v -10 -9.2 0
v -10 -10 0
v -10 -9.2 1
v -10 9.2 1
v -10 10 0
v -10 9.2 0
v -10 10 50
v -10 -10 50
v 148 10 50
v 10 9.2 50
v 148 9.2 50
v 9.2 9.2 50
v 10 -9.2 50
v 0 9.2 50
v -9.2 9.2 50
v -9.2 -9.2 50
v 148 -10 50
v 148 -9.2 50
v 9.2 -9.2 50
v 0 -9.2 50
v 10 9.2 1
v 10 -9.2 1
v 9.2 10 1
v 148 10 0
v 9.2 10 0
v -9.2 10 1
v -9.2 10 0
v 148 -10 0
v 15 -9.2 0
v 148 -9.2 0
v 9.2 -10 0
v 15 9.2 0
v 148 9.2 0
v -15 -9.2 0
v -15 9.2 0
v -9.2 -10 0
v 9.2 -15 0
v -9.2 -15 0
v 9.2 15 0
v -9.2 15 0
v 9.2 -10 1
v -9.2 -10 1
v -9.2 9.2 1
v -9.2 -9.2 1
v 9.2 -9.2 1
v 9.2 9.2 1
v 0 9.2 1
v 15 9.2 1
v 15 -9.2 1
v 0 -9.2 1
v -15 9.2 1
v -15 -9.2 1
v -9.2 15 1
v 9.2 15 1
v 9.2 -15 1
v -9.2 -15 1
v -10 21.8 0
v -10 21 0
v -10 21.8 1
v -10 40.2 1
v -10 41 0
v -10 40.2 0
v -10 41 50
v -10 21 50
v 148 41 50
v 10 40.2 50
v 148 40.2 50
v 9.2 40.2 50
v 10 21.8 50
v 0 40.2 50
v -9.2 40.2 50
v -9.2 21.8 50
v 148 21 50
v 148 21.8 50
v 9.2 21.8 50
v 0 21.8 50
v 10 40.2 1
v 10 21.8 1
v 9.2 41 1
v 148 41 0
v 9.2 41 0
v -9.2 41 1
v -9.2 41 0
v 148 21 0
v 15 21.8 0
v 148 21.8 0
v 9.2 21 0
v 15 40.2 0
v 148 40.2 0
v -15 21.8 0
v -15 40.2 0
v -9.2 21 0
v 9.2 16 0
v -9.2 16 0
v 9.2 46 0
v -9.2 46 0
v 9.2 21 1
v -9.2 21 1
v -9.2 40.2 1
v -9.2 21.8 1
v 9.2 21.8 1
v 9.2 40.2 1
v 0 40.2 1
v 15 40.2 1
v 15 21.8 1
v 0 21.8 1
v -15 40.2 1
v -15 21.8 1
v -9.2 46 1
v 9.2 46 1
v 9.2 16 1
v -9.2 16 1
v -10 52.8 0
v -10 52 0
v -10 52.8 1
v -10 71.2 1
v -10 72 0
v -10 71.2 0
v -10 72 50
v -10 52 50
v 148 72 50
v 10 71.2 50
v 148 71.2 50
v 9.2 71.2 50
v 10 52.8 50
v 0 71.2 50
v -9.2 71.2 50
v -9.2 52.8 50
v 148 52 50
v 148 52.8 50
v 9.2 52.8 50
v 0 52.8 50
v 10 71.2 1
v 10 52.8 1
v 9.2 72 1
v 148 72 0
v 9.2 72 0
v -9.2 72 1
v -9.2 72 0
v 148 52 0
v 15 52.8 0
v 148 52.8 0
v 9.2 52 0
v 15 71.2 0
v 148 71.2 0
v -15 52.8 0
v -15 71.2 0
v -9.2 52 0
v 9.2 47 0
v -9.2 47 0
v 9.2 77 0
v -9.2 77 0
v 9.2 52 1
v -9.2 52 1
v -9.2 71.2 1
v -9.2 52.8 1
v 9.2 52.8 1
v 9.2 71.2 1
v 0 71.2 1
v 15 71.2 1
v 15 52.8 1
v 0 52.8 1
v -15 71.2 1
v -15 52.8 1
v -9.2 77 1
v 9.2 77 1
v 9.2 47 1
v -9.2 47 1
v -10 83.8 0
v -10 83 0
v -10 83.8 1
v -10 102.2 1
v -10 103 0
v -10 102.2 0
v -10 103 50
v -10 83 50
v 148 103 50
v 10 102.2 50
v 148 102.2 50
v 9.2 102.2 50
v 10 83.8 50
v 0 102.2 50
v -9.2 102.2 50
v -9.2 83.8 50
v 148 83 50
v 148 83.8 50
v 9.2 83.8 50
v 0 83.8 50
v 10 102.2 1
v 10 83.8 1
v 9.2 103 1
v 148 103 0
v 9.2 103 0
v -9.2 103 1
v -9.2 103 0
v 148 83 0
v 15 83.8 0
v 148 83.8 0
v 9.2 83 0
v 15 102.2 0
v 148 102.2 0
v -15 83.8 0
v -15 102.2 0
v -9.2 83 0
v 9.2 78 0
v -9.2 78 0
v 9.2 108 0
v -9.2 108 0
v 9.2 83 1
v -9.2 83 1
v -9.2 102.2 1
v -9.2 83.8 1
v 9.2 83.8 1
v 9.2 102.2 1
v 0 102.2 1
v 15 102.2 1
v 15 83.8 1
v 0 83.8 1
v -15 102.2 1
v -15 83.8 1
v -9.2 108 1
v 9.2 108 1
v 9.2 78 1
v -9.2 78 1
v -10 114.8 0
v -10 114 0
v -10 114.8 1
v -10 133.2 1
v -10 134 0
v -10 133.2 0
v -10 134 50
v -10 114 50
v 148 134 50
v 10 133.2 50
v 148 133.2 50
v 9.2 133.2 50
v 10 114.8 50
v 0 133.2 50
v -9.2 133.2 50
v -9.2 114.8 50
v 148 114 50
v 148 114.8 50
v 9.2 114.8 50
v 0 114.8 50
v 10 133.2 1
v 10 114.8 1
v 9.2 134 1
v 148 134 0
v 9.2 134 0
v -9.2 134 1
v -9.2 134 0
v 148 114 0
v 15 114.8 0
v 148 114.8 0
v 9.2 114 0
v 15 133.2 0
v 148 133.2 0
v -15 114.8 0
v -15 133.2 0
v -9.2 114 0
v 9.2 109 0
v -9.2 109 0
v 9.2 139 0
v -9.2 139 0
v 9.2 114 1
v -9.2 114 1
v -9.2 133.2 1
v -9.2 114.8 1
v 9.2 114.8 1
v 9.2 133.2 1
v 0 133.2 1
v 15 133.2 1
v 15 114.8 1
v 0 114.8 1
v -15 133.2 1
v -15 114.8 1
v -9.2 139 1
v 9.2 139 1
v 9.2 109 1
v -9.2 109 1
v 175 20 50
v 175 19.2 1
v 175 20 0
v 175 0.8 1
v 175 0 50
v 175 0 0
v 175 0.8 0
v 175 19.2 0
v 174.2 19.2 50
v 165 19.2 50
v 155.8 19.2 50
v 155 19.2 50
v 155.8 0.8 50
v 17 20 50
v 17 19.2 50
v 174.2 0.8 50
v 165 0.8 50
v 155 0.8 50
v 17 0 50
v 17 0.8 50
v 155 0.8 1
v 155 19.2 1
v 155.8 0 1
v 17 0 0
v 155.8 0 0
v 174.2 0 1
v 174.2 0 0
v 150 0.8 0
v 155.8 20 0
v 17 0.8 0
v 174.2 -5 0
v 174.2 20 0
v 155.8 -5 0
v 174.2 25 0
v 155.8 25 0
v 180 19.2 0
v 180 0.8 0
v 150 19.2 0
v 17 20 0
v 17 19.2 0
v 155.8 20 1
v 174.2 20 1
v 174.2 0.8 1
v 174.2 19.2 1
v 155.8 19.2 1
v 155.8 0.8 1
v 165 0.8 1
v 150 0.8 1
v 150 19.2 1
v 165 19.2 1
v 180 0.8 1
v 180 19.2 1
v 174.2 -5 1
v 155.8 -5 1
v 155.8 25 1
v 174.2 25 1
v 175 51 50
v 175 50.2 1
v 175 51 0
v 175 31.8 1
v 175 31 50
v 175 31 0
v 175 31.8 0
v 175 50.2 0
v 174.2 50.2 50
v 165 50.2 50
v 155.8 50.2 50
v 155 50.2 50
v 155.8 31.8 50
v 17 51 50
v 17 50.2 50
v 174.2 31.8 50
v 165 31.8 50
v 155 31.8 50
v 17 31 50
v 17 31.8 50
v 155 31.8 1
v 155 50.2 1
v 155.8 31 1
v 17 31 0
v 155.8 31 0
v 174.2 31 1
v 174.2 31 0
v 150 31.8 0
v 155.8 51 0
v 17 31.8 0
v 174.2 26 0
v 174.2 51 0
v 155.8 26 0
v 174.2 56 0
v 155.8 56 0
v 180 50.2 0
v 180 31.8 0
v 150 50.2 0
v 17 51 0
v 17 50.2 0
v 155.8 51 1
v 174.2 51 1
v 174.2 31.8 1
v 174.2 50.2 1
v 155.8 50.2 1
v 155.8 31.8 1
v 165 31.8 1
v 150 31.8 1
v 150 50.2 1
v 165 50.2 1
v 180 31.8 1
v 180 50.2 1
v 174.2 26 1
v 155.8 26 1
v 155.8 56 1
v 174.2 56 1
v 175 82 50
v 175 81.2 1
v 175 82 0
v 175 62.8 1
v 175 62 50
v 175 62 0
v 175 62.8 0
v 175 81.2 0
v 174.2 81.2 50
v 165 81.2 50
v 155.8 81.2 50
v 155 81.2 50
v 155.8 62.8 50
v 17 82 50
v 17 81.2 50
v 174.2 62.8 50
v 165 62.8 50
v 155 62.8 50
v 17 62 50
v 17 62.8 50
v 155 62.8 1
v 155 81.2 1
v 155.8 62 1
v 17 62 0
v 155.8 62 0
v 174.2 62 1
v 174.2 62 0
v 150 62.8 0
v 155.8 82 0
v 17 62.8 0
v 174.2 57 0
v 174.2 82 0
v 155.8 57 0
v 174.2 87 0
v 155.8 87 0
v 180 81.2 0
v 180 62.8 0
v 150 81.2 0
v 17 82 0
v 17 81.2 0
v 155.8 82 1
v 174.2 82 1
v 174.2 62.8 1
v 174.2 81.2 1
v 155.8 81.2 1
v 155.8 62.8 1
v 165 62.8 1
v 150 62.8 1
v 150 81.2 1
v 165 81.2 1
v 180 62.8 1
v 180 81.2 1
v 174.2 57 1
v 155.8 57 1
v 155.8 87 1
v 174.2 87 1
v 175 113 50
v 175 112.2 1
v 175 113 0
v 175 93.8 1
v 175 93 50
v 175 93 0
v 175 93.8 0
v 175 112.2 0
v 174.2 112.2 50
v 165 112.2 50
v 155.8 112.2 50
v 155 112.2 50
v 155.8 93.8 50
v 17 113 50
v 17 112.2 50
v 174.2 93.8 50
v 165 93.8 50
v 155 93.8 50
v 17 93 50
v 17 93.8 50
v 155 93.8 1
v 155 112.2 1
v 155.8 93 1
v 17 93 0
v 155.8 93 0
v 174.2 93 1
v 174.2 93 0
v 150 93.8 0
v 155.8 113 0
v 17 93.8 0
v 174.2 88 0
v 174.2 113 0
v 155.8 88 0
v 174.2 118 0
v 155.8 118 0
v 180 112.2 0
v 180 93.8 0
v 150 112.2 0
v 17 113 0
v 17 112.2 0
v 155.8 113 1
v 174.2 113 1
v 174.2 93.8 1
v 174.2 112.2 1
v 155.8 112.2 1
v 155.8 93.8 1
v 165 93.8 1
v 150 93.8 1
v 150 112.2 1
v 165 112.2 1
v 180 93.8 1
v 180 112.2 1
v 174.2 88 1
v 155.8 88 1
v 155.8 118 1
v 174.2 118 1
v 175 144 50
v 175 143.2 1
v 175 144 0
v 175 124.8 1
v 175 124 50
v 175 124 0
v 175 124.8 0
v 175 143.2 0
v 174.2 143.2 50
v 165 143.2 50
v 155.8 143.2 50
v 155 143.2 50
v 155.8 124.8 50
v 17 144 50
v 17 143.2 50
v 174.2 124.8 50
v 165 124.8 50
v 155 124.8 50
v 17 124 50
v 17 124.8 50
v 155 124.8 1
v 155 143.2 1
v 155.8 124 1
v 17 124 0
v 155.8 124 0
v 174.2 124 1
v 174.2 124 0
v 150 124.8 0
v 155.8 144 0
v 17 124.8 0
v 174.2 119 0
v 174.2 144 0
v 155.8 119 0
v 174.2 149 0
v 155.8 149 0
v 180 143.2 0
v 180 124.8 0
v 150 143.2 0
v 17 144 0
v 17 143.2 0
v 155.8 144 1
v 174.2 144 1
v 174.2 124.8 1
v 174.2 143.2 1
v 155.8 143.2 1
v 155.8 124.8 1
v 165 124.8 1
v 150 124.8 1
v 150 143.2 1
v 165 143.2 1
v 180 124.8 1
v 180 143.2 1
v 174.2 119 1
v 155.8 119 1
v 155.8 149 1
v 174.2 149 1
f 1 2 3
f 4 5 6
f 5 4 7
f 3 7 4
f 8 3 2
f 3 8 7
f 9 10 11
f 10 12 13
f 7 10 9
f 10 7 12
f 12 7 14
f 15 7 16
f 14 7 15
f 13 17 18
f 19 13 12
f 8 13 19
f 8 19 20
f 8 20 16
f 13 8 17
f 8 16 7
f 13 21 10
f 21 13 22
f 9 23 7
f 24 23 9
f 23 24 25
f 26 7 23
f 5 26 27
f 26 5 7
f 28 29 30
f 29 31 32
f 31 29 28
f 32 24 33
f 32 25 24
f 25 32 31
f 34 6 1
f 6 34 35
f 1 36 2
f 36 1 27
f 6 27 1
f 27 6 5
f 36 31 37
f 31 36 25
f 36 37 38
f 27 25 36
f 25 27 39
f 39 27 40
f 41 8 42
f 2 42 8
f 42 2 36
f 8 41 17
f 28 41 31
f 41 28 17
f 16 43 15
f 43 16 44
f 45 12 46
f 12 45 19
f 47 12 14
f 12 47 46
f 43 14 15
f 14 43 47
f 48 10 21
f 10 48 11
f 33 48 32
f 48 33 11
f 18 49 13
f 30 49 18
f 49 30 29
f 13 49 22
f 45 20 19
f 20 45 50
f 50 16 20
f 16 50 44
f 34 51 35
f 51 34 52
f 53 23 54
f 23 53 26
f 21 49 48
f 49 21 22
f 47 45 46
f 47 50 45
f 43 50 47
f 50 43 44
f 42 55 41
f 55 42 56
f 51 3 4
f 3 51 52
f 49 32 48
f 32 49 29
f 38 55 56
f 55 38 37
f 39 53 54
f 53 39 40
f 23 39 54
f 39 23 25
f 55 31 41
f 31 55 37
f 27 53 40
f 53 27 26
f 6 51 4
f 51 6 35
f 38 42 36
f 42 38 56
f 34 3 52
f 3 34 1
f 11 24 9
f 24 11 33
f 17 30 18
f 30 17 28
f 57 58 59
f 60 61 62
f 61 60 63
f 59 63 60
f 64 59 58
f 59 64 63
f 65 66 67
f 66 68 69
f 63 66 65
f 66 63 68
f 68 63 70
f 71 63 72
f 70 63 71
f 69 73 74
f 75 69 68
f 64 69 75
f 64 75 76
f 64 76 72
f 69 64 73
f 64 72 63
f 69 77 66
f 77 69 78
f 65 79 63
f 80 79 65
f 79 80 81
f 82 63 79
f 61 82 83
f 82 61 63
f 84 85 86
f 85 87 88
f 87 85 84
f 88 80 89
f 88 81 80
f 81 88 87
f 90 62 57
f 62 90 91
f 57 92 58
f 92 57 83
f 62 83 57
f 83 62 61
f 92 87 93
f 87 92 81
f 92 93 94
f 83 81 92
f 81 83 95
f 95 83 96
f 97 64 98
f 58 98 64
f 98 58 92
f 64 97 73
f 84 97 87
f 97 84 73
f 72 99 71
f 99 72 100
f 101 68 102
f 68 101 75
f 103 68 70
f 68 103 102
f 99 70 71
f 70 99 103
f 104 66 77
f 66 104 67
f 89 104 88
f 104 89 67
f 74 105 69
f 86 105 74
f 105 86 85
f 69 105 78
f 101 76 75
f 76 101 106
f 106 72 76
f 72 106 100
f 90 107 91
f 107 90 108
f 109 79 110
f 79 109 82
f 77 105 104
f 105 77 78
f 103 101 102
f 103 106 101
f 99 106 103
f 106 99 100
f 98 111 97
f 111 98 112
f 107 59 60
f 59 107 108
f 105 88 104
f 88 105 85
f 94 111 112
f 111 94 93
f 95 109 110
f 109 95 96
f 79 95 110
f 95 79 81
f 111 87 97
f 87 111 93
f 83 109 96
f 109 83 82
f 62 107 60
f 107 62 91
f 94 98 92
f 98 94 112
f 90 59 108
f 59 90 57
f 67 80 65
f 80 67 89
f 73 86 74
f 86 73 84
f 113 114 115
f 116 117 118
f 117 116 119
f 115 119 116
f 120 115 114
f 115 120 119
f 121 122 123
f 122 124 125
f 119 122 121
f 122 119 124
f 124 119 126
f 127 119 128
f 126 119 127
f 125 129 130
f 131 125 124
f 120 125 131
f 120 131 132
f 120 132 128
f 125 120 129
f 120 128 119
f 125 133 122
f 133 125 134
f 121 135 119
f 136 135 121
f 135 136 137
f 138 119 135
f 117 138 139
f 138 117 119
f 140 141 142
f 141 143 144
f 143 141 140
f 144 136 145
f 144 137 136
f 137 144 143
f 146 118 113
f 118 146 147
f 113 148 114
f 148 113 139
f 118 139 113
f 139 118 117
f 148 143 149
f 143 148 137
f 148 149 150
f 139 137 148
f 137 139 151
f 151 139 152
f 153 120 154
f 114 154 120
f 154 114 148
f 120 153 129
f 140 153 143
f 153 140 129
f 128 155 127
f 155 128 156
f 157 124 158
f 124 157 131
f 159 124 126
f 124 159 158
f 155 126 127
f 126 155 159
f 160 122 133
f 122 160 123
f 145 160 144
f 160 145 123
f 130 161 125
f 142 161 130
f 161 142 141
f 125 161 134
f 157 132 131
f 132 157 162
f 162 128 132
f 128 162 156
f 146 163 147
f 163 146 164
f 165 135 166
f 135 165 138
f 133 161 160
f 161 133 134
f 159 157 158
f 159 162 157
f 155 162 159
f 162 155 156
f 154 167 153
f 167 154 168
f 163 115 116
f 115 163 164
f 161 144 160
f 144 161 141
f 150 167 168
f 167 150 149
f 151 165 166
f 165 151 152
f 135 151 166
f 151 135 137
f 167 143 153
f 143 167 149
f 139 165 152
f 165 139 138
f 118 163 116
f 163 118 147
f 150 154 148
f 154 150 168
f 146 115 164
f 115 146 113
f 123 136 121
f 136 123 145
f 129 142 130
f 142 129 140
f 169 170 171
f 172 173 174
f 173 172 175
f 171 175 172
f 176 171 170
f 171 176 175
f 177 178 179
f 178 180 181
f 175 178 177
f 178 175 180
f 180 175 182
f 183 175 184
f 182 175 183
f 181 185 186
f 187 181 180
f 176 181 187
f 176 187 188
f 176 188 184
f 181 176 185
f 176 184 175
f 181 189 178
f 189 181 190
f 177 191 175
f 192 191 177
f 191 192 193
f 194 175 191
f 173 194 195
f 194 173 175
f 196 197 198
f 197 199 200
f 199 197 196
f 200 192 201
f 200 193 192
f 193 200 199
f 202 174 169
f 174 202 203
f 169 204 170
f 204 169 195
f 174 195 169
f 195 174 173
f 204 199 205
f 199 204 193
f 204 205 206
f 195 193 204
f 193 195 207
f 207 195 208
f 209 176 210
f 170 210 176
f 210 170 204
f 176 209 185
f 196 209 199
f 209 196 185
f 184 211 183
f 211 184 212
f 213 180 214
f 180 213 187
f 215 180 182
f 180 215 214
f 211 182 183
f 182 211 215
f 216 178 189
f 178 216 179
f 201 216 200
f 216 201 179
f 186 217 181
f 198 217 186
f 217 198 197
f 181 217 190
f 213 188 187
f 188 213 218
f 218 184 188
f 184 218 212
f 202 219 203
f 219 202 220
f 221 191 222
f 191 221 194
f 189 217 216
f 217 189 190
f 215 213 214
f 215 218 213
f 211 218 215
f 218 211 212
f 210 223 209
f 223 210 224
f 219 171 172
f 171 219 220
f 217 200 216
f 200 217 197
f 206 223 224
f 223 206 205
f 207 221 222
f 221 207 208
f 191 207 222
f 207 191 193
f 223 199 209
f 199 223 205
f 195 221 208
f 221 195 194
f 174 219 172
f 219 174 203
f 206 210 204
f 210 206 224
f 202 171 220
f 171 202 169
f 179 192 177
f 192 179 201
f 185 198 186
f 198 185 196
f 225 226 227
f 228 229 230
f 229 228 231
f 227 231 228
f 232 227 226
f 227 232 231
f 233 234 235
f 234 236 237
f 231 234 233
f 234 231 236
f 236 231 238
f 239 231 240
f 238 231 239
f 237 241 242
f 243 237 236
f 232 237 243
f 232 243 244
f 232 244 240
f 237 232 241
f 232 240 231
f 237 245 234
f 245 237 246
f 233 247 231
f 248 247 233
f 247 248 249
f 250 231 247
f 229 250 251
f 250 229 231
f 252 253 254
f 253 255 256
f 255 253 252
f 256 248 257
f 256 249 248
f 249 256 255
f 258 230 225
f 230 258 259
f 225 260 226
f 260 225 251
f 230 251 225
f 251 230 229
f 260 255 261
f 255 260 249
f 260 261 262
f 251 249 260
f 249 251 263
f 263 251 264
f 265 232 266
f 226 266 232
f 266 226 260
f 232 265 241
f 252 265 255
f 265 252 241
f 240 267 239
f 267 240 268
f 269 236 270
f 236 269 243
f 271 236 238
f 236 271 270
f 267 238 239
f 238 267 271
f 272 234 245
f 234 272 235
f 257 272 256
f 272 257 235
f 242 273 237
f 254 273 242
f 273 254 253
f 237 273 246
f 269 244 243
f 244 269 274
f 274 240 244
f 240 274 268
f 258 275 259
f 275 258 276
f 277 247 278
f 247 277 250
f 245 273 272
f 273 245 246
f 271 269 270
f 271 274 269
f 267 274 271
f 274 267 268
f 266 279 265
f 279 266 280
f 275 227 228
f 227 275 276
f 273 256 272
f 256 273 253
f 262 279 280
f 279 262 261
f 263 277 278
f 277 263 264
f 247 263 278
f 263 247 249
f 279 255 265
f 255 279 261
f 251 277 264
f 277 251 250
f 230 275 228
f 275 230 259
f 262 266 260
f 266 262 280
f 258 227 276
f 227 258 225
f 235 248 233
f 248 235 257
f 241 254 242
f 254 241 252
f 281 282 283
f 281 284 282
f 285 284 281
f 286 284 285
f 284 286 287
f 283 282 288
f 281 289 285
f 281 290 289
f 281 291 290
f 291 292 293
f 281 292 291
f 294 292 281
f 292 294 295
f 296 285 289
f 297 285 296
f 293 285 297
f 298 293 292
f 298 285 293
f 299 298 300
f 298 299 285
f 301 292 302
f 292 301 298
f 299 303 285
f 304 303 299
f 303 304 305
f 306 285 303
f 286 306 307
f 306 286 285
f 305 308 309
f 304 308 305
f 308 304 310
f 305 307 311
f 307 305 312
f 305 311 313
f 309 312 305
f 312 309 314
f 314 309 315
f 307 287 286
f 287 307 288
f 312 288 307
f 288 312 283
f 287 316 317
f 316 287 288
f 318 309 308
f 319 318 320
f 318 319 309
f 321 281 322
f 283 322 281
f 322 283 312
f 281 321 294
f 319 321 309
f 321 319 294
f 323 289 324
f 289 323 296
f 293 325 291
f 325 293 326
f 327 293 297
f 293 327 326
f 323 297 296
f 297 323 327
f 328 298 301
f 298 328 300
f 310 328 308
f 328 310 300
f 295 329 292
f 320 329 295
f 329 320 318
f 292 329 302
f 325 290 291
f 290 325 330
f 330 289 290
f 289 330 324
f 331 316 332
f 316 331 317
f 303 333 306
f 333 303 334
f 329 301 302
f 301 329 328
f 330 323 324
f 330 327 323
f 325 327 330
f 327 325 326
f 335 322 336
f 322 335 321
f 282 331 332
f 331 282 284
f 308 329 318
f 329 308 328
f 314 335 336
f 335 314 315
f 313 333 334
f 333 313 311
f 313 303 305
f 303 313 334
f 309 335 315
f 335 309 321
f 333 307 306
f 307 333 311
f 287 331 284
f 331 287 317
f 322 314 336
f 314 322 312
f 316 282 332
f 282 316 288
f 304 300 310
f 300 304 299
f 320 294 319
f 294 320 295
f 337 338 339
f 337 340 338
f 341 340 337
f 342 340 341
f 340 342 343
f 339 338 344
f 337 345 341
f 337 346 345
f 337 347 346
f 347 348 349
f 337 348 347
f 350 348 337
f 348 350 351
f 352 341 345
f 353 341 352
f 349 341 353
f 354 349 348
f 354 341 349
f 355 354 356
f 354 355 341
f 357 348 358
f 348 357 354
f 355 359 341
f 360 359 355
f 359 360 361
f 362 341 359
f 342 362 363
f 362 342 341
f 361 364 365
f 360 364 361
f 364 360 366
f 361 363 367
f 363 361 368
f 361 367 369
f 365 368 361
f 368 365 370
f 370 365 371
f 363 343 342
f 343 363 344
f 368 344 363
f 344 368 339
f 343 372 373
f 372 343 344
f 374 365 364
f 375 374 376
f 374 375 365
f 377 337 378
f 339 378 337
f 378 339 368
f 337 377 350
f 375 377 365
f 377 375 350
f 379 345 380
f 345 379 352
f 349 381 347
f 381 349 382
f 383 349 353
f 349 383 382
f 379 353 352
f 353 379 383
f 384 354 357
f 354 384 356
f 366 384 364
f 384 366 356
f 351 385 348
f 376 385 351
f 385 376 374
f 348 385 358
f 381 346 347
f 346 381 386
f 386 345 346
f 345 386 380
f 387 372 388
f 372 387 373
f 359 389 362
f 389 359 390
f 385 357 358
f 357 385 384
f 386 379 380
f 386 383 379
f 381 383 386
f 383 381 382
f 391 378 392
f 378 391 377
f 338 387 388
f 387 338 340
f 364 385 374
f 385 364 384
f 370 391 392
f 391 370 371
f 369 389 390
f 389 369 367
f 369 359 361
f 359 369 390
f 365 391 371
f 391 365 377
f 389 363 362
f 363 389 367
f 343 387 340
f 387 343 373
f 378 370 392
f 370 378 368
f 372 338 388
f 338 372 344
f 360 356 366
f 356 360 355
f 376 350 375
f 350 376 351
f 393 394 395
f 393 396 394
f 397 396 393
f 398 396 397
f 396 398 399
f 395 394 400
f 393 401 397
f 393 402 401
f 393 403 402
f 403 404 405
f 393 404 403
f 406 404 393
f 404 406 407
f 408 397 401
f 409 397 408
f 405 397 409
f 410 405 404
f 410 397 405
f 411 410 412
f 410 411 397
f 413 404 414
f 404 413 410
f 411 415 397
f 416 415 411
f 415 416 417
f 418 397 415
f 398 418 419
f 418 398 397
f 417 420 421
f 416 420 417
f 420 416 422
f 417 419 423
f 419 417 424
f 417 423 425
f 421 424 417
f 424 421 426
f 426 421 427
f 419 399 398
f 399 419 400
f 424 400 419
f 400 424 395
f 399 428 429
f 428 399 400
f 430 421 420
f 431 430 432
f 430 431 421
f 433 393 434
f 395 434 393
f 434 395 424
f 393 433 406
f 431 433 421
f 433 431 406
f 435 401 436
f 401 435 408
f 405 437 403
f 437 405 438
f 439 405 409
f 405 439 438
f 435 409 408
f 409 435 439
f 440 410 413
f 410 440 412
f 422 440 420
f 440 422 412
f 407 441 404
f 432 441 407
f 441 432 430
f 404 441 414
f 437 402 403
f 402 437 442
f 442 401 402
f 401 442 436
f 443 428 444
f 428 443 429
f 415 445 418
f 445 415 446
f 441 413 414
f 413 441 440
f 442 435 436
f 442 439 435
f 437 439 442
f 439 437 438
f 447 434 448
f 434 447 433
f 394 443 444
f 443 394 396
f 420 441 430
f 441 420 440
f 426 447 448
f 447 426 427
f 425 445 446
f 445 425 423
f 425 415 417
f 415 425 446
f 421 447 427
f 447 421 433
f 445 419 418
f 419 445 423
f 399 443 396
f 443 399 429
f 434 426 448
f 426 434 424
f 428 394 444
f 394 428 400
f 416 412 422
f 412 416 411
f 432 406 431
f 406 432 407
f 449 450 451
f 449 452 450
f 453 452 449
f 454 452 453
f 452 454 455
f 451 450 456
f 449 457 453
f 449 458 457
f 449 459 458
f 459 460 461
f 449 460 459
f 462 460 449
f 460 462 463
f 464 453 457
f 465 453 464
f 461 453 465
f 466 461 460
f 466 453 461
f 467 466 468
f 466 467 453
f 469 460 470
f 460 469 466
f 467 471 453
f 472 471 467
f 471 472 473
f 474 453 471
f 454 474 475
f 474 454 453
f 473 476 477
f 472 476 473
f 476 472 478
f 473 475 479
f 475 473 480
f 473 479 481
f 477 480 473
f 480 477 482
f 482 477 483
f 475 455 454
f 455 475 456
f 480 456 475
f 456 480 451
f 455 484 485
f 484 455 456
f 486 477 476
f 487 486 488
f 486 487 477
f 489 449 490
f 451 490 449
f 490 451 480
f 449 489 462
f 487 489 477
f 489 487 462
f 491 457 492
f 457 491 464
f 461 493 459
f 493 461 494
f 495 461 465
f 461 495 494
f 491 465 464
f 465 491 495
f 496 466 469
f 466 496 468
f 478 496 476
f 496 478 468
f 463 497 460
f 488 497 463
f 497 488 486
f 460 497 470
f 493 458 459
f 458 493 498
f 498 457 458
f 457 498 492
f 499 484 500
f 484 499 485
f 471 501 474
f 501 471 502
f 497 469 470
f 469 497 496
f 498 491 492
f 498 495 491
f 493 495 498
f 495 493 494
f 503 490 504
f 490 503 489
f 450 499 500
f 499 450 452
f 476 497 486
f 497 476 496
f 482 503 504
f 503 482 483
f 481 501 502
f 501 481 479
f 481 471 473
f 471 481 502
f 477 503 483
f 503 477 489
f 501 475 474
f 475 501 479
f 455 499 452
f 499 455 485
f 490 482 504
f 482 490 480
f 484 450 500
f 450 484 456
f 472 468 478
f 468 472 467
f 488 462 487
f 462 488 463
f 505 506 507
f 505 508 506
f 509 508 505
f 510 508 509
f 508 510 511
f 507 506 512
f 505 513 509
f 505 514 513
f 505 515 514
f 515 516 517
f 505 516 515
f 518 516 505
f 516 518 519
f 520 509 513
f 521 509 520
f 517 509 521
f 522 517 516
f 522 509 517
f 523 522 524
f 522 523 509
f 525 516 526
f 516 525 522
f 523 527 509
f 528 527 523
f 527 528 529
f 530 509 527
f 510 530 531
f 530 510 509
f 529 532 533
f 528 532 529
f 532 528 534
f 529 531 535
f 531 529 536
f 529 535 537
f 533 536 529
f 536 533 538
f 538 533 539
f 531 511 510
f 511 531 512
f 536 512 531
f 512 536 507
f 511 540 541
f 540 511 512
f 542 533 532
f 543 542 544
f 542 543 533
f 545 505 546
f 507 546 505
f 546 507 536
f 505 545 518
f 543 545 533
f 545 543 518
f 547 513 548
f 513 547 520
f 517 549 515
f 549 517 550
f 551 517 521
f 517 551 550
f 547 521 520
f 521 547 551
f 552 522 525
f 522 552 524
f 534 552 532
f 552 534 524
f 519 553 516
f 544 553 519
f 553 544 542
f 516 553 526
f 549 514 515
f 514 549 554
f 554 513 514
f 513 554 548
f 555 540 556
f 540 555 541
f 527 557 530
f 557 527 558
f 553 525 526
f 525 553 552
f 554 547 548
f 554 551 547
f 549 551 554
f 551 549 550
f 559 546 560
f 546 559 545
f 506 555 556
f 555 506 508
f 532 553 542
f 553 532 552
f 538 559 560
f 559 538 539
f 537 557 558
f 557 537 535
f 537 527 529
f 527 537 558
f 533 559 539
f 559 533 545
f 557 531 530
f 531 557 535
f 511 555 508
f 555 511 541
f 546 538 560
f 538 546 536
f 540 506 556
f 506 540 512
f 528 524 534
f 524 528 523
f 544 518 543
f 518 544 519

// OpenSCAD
// Paredes modulares para probar el laberinto de la OSHWDem ( http://oshwdem.org/ )
// Diseñado por Víctor Uceda (@VictorUceda), Eduardo Hilario (@eduhs) y Carlos García (@CarlosGS)
// Club de Robótica-Mecatrónica, Universidad Autónoma de Madrid ( http://crm.ii.uam.es )
// Licencia: Public Domain

module pieza(complex=true){
    if(complex){
    difference(){
        translate([0,0,0.5]) cube([30,30,1],center=true);
        translate([12.5,12.5,0])cube([6.6,6.6,4],center=true);
        translate([12.5,-12.5,0])cube([6.6,6.6,4],center=true);
        translate([-12.5,12.5,0])cube([6.6,6.6,4],center=true);
        translate([-12.5,-12.5,0])cube([6.6,6.6,4],center=true);
    }
}
difference(){
    translate([0,0,25])cube([20,20,50],center=true);
    translate([0,0,35+0.5])cube([18.4,18.4,70],center=true);
}  
translate([148/2,10-0.4 ,25])cube([148,0.8,50],center=true);
translate([148/2,-(10-0.4) ,25])cube([148,0.8,50],center=true);
}

numPiezas=4;
for(i=[0:numPiezas]){
    translate([0,i*31,0])pieza();
}
for(i=[0:numPiezas]){
    translate([165,10+i*31  ,0])rotate([0,0,180])pieza();
}

%translate([-15,-15,-10])cube([198,198,5]); // base de impresión
